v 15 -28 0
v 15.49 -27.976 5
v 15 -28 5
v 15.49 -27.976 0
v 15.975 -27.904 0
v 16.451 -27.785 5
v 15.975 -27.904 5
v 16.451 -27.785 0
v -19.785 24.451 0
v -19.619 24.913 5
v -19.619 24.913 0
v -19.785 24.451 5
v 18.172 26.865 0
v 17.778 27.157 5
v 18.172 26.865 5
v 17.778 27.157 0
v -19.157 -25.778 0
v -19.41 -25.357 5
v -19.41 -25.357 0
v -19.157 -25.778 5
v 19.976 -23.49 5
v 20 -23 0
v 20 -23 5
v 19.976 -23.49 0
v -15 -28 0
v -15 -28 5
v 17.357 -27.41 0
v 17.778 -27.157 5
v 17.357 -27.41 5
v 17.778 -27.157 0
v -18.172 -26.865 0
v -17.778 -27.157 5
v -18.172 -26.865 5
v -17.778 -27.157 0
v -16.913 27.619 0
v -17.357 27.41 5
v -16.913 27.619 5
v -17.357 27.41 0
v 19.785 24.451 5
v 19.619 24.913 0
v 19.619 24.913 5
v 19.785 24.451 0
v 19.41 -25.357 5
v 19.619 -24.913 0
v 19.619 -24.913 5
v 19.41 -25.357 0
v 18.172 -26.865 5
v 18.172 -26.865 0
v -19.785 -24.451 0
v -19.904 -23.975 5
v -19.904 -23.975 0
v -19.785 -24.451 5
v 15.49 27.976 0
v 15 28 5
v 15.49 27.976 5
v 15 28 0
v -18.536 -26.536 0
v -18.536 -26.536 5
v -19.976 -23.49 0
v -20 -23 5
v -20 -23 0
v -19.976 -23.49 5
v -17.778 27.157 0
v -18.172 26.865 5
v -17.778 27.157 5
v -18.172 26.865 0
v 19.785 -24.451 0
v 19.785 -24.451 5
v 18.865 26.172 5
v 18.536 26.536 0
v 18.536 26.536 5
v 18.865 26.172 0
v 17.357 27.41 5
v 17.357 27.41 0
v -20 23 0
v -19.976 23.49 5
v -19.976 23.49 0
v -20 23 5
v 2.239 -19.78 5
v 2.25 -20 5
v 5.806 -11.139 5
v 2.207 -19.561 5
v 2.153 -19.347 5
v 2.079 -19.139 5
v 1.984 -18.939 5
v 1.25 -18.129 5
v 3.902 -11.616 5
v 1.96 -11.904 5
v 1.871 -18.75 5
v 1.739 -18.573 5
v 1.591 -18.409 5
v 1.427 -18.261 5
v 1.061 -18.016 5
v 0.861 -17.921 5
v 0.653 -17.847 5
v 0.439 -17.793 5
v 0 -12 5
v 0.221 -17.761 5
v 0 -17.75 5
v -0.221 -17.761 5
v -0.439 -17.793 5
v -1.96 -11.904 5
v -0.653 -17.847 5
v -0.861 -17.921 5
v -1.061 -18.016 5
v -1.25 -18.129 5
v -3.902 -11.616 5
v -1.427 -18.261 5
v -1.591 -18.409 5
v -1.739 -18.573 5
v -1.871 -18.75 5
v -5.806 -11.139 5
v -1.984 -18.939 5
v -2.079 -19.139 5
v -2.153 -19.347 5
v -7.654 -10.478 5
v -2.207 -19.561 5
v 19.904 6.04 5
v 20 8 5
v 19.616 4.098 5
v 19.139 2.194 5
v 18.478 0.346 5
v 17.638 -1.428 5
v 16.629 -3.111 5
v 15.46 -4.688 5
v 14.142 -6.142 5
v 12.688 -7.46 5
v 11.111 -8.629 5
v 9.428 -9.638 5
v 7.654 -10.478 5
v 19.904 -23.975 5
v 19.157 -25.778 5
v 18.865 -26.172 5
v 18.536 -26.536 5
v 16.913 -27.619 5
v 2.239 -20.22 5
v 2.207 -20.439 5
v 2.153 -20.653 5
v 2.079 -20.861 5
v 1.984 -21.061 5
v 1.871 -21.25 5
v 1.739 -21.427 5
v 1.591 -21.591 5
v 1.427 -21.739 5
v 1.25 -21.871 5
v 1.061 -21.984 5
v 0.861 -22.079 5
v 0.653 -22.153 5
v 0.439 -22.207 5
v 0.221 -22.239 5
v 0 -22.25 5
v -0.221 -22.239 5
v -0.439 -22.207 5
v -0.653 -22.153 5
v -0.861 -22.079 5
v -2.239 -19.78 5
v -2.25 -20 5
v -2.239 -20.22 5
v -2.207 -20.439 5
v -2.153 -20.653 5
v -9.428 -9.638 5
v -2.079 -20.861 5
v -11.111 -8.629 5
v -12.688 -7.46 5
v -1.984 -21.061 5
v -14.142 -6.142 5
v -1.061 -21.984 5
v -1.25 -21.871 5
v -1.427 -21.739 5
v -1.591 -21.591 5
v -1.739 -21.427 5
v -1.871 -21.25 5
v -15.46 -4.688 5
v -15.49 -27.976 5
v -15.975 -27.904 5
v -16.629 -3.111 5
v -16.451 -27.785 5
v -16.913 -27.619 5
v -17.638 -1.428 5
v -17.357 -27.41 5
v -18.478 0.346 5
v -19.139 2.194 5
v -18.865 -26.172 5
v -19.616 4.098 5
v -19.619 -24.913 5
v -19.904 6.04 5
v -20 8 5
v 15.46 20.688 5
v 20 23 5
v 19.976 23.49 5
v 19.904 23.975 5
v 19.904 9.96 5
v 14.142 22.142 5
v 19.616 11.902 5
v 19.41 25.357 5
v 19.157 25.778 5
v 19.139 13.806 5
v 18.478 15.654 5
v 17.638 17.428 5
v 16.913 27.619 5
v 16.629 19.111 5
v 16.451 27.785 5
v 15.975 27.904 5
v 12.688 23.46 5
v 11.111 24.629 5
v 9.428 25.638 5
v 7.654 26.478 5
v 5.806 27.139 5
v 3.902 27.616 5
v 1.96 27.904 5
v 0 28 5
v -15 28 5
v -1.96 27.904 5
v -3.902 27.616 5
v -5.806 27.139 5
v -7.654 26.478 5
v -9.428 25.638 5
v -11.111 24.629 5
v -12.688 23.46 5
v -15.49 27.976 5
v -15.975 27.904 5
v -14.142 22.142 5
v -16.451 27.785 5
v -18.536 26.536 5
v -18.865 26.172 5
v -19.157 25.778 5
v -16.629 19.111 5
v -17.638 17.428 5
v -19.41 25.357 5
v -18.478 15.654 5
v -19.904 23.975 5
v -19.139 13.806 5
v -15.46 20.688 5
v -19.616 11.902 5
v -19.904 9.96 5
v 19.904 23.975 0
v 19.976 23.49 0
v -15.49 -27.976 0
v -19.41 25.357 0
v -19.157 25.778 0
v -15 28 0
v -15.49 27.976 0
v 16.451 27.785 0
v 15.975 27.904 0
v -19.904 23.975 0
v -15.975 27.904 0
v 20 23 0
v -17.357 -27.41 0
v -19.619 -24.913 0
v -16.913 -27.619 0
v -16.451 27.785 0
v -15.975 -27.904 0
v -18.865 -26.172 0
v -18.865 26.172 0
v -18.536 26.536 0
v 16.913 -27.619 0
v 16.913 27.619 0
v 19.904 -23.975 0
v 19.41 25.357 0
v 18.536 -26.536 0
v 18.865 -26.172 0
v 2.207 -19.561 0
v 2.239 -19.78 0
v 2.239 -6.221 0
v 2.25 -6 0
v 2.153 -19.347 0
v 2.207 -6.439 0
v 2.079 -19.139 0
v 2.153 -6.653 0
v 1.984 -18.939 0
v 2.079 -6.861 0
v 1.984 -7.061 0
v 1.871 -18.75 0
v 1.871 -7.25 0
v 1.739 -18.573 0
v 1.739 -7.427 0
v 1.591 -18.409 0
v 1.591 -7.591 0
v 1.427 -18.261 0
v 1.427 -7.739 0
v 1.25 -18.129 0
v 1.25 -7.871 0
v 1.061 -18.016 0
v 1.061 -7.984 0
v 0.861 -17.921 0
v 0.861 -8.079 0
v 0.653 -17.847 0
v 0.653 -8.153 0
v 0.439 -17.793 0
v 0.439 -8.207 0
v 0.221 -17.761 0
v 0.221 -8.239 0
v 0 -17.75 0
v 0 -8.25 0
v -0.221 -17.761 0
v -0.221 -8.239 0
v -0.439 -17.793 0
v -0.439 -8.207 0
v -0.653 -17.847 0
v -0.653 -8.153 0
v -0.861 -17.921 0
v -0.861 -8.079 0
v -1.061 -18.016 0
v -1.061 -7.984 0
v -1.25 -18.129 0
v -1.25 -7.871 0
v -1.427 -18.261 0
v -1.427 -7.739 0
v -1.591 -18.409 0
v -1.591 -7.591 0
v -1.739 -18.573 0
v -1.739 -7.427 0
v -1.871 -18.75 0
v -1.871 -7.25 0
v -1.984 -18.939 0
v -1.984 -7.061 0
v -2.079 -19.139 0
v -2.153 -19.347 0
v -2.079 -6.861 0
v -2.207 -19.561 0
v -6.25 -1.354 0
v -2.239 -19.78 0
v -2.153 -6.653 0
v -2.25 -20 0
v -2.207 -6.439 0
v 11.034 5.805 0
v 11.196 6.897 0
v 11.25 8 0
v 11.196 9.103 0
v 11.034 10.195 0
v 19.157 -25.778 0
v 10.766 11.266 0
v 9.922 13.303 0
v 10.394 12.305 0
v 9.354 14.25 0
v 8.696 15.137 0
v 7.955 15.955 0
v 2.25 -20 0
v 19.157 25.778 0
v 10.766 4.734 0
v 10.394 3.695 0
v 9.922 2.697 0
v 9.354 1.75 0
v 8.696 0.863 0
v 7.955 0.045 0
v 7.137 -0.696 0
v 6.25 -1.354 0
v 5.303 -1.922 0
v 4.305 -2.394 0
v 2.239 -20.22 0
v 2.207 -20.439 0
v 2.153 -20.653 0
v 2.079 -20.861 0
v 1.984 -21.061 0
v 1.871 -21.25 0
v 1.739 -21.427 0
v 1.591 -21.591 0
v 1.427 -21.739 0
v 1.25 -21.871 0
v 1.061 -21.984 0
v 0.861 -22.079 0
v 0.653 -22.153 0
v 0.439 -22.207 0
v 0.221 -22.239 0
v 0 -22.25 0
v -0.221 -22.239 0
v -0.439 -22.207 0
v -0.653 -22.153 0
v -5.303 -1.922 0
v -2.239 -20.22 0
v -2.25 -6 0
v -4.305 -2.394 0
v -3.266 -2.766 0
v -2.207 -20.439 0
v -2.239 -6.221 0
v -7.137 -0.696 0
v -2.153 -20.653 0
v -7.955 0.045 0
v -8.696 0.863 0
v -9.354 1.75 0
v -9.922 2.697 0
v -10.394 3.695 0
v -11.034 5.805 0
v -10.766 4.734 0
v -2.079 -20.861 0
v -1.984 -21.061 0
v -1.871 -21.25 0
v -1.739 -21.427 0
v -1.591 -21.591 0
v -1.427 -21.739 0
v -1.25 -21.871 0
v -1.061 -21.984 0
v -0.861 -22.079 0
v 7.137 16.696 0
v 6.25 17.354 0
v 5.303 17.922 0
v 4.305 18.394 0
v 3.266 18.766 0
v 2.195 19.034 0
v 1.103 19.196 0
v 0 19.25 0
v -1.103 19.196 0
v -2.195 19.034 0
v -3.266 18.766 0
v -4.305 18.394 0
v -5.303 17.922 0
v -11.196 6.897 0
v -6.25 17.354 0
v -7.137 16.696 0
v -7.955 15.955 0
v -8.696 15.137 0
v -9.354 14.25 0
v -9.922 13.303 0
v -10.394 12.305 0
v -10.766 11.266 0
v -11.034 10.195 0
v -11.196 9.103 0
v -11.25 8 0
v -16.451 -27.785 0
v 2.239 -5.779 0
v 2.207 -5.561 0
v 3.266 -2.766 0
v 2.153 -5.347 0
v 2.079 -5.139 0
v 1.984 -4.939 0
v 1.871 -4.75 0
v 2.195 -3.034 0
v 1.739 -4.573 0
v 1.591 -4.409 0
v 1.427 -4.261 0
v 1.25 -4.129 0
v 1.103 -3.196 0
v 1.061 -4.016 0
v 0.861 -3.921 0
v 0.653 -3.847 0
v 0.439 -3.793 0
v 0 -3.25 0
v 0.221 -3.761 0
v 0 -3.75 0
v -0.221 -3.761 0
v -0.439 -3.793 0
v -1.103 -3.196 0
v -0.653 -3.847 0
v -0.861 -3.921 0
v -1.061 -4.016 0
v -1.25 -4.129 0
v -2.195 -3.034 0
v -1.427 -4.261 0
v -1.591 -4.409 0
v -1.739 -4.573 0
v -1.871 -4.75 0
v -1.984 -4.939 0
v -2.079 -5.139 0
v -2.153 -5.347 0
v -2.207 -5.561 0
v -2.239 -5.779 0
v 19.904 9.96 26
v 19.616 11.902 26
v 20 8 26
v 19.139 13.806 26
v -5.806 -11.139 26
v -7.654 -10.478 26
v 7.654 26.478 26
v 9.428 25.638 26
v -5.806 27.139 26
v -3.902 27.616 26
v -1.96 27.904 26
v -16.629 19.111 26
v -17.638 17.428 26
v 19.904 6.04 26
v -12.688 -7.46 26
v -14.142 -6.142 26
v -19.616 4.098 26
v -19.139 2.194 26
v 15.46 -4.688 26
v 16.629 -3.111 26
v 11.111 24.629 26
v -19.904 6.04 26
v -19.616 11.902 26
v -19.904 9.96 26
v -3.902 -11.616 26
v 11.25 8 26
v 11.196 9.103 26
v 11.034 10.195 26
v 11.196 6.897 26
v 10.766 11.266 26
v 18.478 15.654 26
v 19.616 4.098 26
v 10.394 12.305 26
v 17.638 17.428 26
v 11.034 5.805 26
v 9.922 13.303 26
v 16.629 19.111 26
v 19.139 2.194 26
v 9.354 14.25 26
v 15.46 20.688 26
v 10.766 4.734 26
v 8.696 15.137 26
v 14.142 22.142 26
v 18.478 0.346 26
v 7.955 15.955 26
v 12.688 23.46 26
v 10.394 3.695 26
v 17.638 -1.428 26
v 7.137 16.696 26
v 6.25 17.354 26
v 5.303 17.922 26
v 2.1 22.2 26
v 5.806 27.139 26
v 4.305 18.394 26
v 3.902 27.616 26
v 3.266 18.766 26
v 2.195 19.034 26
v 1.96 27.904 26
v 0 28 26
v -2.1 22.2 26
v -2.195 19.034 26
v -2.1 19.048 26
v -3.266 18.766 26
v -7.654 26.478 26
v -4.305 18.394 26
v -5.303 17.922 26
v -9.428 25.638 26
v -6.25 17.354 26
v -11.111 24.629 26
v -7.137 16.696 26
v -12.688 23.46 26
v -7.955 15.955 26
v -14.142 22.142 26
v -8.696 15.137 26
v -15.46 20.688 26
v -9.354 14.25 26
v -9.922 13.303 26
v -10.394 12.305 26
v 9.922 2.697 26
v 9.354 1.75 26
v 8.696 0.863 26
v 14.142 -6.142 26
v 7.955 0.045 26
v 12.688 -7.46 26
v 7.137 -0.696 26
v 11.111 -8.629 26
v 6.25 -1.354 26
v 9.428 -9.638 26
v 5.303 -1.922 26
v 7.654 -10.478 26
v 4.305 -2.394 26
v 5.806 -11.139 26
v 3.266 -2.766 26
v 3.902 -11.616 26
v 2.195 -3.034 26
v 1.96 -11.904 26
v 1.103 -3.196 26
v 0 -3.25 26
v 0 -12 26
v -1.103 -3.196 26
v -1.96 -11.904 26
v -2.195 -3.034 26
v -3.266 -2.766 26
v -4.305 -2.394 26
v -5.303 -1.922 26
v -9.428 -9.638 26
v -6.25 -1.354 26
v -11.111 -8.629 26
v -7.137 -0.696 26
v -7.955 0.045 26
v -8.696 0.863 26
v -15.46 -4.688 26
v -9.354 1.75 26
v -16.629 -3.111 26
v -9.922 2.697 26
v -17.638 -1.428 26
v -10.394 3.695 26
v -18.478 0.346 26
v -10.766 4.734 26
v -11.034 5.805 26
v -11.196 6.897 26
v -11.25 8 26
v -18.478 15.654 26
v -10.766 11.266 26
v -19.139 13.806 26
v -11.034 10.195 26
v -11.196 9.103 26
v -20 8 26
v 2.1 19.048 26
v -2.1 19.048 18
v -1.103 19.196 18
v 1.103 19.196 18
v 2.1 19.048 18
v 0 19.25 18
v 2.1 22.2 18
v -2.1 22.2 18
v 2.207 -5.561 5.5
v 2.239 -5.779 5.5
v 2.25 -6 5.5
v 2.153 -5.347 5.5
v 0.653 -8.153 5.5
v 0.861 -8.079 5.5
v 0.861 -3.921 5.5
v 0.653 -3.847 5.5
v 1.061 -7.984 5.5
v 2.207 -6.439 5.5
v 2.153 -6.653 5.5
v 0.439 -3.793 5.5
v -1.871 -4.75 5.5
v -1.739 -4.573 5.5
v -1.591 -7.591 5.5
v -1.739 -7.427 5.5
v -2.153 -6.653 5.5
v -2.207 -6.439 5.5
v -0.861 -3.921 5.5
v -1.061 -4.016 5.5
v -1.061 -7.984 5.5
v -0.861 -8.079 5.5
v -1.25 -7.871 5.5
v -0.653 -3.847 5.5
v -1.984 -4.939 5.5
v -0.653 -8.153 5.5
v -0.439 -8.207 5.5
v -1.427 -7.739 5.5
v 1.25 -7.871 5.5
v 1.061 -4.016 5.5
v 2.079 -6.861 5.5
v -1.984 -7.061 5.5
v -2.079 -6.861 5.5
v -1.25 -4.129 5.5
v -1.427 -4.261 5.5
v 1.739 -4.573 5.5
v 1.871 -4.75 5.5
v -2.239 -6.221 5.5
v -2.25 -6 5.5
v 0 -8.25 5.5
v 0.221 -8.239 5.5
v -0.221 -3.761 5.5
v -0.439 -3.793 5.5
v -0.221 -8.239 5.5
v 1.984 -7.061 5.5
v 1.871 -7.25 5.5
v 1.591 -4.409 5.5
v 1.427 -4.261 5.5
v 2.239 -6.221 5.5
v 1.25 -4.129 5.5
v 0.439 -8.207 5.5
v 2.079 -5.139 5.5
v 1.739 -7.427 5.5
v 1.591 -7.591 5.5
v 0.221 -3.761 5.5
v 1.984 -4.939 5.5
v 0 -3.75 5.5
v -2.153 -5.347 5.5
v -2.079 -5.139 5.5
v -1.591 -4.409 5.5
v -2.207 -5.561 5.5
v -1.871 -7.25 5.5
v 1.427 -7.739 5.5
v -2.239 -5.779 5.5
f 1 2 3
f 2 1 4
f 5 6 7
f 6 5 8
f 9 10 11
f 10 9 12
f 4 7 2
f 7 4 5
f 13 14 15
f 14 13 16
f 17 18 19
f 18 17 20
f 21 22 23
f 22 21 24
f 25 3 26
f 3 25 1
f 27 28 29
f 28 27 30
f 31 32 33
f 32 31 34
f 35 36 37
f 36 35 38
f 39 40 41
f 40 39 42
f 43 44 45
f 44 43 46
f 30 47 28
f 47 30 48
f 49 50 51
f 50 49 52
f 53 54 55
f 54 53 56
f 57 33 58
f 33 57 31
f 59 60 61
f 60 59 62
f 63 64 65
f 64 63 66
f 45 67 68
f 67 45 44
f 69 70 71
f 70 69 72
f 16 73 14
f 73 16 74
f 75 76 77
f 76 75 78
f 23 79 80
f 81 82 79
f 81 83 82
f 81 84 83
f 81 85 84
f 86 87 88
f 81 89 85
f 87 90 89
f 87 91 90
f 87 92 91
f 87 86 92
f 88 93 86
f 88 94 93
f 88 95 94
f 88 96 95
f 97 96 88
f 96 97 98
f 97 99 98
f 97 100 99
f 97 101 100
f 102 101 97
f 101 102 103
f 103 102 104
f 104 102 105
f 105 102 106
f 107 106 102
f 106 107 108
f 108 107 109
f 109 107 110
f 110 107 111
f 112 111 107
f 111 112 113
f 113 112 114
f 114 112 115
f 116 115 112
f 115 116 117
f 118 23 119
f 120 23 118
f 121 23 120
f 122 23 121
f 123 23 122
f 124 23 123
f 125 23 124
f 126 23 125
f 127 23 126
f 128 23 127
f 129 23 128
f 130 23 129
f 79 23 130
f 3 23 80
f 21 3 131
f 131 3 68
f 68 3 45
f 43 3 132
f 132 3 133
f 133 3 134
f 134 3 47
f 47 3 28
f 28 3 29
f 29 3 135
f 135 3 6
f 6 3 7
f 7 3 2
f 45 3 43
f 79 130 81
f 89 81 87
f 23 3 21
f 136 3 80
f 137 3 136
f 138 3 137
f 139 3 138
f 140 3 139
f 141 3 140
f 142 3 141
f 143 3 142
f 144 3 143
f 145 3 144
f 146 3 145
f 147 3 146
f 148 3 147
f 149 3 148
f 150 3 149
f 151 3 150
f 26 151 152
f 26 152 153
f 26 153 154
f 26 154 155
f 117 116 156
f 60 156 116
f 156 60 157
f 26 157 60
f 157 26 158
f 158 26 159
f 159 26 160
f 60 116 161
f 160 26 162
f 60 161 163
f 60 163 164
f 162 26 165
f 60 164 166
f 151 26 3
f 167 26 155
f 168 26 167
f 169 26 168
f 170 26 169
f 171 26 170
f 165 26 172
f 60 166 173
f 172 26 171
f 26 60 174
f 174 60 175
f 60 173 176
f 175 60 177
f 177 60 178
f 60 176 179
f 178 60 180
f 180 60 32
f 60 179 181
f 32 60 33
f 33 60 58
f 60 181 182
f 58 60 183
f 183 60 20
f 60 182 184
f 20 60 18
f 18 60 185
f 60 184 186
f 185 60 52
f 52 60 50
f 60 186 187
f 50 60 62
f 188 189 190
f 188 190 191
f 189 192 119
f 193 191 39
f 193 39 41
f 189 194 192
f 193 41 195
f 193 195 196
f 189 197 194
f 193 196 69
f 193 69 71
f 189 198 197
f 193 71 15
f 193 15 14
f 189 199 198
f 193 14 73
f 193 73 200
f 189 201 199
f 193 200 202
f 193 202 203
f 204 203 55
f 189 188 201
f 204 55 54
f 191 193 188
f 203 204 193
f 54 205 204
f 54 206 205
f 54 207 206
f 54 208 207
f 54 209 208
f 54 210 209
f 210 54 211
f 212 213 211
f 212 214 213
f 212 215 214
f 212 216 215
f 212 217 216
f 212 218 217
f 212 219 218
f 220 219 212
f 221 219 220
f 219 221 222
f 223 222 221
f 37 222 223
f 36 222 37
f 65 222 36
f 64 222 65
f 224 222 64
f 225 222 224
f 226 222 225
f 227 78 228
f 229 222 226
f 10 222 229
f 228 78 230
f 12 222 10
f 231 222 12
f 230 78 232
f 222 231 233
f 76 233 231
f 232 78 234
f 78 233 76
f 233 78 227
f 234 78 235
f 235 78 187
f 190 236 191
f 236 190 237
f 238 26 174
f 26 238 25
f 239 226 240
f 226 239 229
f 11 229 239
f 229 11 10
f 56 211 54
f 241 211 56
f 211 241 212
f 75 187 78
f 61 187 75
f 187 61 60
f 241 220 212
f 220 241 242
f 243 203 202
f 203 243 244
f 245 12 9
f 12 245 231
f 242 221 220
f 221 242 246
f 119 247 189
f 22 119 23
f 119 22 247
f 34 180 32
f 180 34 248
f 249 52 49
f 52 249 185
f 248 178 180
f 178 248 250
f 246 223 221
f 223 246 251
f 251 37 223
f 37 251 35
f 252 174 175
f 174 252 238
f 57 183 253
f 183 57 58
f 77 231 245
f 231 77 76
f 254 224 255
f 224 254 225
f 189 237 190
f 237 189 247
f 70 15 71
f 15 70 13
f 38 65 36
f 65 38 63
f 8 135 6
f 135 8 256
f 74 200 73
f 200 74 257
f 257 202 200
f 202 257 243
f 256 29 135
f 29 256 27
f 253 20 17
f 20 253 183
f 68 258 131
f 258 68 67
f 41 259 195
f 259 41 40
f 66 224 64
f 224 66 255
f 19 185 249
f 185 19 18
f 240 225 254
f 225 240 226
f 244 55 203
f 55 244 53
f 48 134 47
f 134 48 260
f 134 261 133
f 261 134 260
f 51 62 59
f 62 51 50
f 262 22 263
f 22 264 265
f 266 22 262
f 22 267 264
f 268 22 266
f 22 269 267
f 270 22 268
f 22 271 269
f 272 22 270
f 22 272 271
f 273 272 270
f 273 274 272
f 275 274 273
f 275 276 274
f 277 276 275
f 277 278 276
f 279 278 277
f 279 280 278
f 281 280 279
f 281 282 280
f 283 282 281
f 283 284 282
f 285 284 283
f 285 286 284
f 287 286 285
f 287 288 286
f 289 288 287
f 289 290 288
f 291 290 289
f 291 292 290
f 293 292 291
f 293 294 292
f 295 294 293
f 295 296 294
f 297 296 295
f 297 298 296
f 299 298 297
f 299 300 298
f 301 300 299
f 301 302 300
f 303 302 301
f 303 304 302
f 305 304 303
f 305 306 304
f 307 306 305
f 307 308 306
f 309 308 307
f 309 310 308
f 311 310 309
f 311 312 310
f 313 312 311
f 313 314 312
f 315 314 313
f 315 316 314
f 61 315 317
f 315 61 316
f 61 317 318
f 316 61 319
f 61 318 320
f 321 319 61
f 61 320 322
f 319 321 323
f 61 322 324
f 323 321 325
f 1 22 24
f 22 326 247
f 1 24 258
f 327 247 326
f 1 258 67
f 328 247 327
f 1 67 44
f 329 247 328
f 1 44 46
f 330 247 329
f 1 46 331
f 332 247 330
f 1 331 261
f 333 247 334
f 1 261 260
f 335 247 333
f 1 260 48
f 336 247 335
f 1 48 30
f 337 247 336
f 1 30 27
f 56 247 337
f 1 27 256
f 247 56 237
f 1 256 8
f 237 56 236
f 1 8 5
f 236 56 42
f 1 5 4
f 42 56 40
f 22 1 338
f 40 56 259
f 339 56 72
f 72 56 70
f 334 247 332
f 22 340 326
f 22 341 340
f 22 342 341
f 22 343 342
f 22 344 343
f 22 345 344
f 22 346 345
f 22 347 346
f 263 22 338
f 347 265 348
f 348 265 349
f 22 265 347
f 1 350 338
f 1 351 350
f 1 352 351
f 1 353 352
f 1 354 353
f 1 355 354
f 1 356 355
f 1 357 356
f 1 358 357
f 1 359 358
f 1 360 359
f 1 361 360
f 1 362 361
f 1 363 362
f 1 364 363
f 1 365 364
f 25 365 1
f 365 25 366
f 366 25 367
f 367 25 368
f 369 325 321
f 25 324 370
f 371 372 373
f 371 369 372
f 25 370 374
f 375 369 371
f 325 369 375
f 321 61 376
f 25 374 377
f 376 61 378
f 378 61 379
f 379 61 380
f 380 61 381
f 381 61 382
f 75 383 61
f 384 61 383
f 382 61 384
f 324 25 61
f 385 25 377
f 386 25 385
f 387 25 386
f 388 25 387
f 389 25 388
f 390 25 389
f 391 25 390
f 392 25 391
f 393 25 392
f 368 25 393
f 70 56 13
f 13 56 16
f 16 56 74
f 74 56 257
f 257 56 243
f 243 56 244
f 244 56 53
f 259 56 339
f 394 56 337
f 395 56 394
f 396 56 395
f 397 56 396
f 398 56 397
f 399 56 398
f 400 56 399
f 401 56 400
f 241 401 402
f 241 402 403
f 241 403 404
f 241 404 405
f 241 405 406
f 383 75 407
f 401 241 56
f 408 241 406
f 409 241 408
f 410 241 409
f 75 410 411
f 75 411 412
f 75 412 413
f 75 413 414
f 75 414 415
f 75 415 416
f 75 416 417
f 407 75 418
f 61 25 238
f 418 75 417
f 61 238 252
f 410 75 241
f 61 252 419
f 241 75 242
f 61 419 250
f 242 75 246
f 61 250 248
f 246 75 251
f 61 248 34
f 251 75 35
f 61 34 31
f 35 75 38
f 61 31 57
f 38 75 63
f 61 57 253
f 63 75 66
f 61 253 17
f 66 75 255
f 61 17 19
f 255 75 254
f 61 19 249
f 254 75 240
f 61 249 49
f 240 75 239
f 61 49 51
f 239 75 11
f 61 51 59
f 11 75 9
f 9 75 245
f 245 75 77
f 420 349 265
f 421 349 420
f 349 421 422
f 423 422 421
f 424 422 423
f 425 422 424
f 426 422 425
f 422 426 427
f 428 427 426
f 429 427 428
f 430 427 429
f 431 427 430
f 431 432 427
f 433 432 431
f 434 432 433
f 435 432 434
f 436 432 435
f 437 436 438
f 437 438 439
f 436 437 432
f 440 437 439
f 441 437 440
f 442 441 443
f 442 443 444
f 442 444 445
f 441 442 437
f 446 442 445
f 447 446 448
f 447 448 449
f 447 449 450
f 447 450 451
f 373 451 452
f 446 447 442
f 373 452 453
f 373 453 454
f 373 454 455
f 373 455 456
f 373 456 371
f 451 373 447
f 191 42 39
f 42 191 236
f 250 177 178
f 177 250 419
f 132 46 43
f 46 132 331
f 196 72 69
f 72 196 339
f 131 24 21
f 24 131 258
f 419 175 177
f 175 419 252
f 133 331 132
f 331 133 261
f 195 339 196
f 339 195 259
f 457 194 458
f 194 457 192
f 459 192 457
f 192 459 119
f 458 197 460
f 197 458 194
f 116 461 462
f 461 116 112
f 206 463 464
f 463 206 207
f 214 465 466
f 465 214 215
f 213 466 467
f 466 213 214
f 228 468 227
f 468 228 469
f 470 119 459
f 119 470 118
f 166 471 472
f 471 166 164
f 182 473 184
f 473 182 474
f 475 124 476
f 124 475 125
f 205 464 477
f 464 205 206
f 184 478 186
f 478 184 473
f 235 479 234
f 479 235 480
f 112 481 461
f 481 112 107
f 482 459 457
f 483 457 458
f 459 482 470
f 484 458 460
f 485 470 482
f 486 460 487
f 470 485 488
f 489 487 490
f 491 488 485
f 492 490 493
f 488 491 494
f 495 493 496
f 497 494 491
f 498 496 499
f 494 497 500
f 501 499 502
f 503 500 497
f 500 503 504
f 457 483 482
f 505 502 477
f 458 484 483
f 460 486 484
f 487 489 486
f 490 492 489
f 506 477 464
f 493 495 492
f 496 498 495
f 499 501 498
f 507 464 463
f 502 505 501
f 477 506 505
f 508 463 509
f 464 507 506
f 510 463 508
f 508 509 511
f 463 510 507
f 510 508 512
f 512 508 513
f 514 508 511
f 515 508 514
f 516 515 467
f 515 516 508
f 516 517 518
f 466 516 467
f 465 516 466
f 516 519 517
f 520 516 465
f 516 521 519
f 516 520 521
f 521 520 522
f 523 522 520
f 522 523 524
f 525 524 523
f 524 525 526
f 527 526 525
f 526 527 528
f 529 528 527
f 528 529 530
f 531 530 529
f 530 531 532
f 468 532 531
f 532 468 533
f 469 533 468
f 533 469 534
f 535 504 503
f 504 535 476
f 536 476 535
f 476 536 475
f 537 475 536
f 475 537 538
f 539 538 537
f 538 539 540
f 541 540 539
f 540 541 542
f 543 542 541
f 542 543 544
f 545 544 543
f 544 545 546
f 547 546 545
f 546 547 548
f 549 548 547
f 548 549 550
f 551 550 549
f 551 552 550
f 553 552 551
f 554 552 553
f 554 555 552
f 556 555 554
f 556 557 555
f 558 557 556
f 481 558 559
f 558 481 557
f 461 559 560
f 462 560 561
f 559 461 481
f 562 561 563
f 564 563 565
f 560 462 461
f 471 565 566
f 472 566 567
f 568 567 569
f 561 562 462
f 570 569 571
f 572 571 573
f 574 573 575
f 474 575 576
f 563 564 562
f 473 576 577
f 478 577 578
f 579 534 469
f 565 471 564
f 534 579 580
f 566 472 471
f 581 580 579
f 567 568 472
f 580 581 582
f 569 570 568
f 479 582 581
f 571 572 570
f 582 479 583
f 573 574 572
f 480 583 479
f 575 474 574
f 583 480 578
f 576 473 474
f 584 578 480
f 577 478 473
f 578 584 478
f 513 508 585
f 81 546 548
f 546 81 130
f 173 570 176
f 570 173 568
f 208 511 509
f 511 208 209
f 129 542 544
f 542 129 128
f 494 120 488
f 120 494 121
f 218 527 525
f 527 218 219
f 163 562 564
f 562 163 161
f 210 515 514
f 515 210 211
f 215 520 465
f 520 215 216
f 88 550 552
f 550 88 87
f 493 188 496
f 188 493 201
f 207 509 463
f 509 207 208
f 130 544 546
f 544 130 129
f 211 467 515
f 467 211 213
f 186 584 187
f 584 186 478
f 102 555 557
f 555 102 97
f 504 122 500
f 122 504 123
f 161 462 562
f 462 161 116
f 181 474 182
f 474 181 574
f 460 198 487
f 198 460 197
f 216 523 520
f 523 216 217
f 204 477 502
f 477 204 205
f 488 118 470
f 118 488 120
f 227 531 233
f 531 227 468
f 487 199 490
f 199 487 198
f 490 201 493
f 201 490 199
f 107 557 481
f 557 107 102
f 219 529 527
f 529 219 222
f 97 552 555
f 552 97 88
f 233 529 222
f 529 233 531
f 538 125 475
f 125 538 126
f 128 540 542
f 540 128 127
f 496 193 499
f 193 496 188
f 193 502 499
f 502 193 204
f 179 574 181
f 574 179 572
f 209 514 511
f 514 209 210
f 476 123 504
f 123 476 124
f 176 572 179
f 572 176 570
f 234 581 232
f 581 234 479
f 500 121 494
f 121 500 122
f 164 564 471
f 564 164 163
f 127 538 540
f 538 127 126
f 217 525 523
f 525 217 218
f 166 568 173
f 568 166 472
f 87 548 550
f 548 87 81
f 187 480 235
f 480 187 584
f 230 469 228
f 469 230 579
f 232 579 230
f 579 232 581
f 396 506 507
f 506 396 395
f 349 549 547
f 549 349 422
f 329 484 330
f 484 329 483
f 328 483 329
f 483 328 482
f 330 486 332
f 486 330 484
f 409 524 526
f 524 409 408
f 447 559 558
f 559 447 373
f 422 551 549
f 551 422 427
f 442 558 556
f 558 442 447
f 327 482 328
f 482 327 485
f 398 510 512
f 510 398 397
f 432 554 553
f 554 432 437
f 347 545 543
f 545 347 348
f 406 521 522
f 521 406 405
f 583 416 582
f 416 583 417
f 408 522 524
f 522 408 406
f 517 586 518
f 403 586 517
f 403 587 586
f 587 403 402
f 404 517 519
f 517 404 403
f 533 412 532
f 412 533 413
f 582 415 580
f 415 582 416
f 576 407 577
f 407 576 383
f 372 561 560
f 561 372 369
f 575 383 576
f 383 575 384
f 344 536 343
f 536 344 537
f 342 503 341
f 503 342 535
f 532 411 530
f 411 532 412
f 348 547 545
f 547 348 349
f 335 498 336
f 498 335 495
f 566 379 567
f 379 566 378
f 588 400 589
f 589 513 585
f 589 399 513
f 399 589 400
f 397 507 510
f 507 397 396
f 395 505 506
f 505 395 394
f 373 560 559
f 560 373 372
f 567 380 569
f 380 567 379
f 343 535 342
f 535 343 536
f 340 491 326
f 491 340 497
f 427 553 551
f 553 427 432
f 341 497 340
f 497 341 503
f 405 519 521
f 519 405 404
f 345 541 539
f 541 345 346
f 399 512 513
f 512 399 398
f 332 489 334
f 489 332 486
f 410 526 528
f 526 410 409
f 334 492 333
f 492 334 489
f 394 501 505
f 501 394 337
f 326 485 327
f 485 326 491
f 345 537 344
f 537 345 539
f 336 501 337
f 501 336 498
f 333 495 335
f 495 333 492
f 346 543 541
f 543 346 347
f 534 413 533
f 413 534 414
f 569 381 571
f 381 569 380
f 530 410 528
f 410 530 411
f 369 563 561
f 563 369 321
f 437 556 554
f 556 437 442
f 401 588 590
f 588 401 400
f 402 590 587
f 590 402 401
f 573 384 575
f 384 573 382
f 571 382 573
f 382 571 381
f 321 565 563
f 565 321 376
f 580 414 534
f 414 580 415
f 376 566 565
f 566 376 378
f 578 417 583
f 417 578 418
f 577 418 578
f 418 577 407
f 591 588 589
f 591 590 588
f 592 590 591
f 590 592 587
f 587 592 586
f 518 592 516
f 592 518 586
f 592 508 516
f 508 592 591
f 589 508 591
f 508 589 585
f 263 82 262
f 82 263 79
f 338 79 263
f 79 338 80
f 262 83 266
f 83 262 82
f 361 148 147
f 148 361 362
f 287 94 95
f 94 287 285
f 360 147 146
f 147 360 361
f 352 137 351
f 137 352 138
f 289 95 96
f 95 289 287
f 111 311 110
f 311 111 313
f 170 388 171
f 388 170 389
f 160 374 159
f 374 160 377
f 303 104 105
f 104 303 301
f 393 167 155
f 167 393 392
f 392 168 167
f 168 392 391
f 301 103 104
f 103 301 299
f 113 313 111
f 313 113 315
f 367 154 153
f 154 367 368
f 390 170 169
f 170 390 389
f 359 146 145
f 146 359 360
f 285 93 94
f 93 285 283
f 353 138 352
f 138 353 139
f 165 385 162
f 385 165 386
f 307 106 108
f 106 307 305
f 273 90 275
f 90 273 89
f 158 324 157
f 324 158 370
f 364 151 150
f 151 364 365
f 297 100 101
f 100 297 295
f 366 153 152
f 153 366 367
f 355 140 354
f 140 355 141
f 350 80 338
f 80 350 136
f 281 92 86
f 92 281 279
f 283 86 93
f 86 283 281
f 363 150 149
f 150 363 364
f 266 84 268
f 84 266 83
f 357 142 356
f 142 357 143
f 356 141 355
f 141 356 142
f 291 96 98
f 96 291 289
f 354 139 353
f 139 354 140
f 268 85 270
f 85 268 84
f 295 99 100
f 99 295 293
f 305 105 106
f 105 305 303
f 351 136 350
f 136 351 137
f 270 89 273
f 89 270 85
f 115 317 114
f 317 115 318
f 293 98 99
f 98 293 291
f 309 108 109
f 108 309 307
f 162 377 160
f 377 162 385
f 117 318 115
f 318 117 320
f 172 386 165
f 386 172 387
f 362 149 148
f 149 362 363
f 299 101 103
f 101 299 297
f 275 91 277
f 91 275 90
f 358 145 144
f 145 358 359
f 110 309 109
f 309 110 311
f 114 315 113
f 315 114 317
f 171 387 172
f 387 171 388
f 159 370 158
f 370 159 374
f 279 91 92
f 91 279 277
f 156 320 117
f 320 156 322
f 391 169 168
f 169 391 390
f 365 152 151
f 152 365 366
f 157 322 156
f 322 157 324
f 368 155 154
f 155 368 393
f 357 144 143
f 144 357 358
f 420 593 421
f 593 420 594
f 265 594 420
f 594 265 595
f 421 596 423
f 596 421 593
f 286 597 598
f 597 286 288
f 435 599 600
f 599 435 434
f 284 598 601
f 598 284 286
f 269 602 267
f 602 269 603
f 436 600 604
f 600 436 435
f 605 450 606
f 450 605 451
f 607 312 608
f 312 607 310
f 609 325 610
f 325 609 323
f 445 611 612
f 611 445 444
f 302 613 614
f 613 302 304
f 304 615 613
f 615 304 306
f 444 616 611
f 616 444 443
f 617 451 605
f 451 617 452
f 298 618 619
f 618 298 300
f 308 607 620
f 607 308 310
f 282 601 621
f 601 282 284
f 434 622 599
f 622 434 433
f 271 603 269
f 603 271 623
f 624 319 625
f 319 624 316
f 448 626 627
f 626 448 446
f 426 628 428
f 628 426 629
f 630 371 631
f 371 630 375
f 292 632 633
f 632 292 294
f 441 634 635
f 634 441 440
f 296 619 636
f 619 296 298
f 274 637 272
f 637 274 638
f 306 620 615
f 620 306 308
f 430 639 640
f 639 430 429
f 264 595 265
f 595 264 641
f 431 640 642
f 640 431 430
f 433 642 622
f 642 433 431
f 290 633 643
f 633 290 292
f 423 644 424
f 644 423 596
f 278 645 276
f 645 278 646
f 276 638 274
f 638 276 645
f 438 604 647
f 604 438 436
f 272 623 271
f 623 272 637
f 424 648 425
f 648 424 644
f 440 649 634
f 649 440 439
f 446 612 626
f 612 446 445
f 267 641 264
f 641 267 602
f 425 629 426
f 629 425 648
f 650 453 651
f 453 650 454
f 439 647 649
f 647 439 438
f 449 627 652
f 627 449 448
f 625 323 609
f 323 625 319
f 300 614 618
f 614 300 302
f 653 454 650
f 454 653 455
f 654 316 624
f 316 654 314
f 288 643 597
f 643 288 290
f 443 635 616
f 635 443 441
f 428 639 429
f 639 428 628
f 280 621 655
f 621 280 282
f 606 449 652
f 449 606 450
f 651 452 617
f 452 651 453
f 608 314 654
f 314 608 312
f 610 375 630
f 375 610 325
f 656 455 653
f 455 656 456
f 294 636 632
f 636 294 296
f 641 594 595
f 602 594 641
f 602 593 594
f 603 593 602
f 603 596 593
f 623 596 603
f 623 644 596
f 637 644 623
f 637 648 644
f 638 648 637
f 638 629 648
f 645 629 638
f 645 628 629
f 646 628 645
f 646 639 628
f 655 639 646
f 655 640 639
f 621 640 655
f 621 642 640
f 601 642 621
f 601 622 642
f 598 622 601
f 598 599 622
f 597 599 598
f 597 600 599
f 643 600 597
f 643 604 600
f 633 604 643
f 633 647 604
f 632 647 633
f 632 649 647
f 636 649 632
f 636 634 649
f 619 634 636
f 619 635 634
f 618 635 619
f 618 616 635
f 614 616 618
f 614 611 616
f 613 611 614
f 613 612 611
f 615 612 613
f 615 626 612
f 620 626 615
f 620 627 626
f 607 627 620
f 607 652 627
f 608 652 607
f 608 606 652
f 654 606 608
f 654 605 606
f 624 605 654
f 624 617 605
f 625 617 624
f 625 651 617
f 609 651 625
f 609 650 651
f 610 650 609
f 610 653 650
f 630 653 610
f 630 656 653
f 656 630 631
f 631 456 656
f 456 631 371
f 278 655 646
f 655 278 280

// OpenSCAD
// file: common.scad
// KARAKURI shared parameters and helpers
// All dimensions in millimetres. Holes are printed undersize-safe:
// M3 through 3.4, M4 through 4.5, M2.5 through 2.9, quarter-inch 6.6.

$fn = 64;

m2_5 = 2.9;
m3 = 3.4;
m4 = 4.5;
quarter_inch = 6.6;

module rounded_plate(x, y, t, r = 8) {
    linear_extrude(t)
        offset(r = r) offset(delta = -r)
            square([x, y], center = true);
}

module hole(d, h) {
    translate([0, 0, -0.5]) cylinder(d = d, h = h + 1);
}

module slot(d, len, h) {
    translate([0, 0, -0.5])
        linear_extrude(h + 1)
            hull() {
                translate([-len / 2, 0]) circle(d = d);
                translate([ len / 2, 0]) circle(d = d);
            }
}

module four_holes(dx, dy, d, h) {
    for (sx = [-1, 1], sy = [-1, 1])
        translate([sx * dx / 2, sy * dy / 2, 0]) hole(d, h);
}
// main file
// E-stop holder for a standard 22 mm mushroom emergency stop button,
// mounted at the rear of the deck where you can reach it from above.
// This is the physical layer of the KODAMA kill switch: the button
// breaks motor and vacuum power directly, no software in the loop.
// Print flat side down, no supports.

include <common.scad>

module estop_mount() {
    difference() {
        union() {
            rounded_plate(40, 56, 5, 5);
            translate([0, 8, 0]) cylinder(d = 40, h = 26);
        }
        // 22 mm panel hole
        translate([0, 8, 0]) hole(22.5, 26);
        // Anti-rotation notch
        translate([0, 8 + 12.2, 18]) linear_extrude(9) square([4.2, 4], center = true);
        // Deck bolts
        translate([0, -20, 0]) hole(m4, 5);
        translate([0, -6, 0]) hole(m4, 5);
    }
}

estop_mount();
